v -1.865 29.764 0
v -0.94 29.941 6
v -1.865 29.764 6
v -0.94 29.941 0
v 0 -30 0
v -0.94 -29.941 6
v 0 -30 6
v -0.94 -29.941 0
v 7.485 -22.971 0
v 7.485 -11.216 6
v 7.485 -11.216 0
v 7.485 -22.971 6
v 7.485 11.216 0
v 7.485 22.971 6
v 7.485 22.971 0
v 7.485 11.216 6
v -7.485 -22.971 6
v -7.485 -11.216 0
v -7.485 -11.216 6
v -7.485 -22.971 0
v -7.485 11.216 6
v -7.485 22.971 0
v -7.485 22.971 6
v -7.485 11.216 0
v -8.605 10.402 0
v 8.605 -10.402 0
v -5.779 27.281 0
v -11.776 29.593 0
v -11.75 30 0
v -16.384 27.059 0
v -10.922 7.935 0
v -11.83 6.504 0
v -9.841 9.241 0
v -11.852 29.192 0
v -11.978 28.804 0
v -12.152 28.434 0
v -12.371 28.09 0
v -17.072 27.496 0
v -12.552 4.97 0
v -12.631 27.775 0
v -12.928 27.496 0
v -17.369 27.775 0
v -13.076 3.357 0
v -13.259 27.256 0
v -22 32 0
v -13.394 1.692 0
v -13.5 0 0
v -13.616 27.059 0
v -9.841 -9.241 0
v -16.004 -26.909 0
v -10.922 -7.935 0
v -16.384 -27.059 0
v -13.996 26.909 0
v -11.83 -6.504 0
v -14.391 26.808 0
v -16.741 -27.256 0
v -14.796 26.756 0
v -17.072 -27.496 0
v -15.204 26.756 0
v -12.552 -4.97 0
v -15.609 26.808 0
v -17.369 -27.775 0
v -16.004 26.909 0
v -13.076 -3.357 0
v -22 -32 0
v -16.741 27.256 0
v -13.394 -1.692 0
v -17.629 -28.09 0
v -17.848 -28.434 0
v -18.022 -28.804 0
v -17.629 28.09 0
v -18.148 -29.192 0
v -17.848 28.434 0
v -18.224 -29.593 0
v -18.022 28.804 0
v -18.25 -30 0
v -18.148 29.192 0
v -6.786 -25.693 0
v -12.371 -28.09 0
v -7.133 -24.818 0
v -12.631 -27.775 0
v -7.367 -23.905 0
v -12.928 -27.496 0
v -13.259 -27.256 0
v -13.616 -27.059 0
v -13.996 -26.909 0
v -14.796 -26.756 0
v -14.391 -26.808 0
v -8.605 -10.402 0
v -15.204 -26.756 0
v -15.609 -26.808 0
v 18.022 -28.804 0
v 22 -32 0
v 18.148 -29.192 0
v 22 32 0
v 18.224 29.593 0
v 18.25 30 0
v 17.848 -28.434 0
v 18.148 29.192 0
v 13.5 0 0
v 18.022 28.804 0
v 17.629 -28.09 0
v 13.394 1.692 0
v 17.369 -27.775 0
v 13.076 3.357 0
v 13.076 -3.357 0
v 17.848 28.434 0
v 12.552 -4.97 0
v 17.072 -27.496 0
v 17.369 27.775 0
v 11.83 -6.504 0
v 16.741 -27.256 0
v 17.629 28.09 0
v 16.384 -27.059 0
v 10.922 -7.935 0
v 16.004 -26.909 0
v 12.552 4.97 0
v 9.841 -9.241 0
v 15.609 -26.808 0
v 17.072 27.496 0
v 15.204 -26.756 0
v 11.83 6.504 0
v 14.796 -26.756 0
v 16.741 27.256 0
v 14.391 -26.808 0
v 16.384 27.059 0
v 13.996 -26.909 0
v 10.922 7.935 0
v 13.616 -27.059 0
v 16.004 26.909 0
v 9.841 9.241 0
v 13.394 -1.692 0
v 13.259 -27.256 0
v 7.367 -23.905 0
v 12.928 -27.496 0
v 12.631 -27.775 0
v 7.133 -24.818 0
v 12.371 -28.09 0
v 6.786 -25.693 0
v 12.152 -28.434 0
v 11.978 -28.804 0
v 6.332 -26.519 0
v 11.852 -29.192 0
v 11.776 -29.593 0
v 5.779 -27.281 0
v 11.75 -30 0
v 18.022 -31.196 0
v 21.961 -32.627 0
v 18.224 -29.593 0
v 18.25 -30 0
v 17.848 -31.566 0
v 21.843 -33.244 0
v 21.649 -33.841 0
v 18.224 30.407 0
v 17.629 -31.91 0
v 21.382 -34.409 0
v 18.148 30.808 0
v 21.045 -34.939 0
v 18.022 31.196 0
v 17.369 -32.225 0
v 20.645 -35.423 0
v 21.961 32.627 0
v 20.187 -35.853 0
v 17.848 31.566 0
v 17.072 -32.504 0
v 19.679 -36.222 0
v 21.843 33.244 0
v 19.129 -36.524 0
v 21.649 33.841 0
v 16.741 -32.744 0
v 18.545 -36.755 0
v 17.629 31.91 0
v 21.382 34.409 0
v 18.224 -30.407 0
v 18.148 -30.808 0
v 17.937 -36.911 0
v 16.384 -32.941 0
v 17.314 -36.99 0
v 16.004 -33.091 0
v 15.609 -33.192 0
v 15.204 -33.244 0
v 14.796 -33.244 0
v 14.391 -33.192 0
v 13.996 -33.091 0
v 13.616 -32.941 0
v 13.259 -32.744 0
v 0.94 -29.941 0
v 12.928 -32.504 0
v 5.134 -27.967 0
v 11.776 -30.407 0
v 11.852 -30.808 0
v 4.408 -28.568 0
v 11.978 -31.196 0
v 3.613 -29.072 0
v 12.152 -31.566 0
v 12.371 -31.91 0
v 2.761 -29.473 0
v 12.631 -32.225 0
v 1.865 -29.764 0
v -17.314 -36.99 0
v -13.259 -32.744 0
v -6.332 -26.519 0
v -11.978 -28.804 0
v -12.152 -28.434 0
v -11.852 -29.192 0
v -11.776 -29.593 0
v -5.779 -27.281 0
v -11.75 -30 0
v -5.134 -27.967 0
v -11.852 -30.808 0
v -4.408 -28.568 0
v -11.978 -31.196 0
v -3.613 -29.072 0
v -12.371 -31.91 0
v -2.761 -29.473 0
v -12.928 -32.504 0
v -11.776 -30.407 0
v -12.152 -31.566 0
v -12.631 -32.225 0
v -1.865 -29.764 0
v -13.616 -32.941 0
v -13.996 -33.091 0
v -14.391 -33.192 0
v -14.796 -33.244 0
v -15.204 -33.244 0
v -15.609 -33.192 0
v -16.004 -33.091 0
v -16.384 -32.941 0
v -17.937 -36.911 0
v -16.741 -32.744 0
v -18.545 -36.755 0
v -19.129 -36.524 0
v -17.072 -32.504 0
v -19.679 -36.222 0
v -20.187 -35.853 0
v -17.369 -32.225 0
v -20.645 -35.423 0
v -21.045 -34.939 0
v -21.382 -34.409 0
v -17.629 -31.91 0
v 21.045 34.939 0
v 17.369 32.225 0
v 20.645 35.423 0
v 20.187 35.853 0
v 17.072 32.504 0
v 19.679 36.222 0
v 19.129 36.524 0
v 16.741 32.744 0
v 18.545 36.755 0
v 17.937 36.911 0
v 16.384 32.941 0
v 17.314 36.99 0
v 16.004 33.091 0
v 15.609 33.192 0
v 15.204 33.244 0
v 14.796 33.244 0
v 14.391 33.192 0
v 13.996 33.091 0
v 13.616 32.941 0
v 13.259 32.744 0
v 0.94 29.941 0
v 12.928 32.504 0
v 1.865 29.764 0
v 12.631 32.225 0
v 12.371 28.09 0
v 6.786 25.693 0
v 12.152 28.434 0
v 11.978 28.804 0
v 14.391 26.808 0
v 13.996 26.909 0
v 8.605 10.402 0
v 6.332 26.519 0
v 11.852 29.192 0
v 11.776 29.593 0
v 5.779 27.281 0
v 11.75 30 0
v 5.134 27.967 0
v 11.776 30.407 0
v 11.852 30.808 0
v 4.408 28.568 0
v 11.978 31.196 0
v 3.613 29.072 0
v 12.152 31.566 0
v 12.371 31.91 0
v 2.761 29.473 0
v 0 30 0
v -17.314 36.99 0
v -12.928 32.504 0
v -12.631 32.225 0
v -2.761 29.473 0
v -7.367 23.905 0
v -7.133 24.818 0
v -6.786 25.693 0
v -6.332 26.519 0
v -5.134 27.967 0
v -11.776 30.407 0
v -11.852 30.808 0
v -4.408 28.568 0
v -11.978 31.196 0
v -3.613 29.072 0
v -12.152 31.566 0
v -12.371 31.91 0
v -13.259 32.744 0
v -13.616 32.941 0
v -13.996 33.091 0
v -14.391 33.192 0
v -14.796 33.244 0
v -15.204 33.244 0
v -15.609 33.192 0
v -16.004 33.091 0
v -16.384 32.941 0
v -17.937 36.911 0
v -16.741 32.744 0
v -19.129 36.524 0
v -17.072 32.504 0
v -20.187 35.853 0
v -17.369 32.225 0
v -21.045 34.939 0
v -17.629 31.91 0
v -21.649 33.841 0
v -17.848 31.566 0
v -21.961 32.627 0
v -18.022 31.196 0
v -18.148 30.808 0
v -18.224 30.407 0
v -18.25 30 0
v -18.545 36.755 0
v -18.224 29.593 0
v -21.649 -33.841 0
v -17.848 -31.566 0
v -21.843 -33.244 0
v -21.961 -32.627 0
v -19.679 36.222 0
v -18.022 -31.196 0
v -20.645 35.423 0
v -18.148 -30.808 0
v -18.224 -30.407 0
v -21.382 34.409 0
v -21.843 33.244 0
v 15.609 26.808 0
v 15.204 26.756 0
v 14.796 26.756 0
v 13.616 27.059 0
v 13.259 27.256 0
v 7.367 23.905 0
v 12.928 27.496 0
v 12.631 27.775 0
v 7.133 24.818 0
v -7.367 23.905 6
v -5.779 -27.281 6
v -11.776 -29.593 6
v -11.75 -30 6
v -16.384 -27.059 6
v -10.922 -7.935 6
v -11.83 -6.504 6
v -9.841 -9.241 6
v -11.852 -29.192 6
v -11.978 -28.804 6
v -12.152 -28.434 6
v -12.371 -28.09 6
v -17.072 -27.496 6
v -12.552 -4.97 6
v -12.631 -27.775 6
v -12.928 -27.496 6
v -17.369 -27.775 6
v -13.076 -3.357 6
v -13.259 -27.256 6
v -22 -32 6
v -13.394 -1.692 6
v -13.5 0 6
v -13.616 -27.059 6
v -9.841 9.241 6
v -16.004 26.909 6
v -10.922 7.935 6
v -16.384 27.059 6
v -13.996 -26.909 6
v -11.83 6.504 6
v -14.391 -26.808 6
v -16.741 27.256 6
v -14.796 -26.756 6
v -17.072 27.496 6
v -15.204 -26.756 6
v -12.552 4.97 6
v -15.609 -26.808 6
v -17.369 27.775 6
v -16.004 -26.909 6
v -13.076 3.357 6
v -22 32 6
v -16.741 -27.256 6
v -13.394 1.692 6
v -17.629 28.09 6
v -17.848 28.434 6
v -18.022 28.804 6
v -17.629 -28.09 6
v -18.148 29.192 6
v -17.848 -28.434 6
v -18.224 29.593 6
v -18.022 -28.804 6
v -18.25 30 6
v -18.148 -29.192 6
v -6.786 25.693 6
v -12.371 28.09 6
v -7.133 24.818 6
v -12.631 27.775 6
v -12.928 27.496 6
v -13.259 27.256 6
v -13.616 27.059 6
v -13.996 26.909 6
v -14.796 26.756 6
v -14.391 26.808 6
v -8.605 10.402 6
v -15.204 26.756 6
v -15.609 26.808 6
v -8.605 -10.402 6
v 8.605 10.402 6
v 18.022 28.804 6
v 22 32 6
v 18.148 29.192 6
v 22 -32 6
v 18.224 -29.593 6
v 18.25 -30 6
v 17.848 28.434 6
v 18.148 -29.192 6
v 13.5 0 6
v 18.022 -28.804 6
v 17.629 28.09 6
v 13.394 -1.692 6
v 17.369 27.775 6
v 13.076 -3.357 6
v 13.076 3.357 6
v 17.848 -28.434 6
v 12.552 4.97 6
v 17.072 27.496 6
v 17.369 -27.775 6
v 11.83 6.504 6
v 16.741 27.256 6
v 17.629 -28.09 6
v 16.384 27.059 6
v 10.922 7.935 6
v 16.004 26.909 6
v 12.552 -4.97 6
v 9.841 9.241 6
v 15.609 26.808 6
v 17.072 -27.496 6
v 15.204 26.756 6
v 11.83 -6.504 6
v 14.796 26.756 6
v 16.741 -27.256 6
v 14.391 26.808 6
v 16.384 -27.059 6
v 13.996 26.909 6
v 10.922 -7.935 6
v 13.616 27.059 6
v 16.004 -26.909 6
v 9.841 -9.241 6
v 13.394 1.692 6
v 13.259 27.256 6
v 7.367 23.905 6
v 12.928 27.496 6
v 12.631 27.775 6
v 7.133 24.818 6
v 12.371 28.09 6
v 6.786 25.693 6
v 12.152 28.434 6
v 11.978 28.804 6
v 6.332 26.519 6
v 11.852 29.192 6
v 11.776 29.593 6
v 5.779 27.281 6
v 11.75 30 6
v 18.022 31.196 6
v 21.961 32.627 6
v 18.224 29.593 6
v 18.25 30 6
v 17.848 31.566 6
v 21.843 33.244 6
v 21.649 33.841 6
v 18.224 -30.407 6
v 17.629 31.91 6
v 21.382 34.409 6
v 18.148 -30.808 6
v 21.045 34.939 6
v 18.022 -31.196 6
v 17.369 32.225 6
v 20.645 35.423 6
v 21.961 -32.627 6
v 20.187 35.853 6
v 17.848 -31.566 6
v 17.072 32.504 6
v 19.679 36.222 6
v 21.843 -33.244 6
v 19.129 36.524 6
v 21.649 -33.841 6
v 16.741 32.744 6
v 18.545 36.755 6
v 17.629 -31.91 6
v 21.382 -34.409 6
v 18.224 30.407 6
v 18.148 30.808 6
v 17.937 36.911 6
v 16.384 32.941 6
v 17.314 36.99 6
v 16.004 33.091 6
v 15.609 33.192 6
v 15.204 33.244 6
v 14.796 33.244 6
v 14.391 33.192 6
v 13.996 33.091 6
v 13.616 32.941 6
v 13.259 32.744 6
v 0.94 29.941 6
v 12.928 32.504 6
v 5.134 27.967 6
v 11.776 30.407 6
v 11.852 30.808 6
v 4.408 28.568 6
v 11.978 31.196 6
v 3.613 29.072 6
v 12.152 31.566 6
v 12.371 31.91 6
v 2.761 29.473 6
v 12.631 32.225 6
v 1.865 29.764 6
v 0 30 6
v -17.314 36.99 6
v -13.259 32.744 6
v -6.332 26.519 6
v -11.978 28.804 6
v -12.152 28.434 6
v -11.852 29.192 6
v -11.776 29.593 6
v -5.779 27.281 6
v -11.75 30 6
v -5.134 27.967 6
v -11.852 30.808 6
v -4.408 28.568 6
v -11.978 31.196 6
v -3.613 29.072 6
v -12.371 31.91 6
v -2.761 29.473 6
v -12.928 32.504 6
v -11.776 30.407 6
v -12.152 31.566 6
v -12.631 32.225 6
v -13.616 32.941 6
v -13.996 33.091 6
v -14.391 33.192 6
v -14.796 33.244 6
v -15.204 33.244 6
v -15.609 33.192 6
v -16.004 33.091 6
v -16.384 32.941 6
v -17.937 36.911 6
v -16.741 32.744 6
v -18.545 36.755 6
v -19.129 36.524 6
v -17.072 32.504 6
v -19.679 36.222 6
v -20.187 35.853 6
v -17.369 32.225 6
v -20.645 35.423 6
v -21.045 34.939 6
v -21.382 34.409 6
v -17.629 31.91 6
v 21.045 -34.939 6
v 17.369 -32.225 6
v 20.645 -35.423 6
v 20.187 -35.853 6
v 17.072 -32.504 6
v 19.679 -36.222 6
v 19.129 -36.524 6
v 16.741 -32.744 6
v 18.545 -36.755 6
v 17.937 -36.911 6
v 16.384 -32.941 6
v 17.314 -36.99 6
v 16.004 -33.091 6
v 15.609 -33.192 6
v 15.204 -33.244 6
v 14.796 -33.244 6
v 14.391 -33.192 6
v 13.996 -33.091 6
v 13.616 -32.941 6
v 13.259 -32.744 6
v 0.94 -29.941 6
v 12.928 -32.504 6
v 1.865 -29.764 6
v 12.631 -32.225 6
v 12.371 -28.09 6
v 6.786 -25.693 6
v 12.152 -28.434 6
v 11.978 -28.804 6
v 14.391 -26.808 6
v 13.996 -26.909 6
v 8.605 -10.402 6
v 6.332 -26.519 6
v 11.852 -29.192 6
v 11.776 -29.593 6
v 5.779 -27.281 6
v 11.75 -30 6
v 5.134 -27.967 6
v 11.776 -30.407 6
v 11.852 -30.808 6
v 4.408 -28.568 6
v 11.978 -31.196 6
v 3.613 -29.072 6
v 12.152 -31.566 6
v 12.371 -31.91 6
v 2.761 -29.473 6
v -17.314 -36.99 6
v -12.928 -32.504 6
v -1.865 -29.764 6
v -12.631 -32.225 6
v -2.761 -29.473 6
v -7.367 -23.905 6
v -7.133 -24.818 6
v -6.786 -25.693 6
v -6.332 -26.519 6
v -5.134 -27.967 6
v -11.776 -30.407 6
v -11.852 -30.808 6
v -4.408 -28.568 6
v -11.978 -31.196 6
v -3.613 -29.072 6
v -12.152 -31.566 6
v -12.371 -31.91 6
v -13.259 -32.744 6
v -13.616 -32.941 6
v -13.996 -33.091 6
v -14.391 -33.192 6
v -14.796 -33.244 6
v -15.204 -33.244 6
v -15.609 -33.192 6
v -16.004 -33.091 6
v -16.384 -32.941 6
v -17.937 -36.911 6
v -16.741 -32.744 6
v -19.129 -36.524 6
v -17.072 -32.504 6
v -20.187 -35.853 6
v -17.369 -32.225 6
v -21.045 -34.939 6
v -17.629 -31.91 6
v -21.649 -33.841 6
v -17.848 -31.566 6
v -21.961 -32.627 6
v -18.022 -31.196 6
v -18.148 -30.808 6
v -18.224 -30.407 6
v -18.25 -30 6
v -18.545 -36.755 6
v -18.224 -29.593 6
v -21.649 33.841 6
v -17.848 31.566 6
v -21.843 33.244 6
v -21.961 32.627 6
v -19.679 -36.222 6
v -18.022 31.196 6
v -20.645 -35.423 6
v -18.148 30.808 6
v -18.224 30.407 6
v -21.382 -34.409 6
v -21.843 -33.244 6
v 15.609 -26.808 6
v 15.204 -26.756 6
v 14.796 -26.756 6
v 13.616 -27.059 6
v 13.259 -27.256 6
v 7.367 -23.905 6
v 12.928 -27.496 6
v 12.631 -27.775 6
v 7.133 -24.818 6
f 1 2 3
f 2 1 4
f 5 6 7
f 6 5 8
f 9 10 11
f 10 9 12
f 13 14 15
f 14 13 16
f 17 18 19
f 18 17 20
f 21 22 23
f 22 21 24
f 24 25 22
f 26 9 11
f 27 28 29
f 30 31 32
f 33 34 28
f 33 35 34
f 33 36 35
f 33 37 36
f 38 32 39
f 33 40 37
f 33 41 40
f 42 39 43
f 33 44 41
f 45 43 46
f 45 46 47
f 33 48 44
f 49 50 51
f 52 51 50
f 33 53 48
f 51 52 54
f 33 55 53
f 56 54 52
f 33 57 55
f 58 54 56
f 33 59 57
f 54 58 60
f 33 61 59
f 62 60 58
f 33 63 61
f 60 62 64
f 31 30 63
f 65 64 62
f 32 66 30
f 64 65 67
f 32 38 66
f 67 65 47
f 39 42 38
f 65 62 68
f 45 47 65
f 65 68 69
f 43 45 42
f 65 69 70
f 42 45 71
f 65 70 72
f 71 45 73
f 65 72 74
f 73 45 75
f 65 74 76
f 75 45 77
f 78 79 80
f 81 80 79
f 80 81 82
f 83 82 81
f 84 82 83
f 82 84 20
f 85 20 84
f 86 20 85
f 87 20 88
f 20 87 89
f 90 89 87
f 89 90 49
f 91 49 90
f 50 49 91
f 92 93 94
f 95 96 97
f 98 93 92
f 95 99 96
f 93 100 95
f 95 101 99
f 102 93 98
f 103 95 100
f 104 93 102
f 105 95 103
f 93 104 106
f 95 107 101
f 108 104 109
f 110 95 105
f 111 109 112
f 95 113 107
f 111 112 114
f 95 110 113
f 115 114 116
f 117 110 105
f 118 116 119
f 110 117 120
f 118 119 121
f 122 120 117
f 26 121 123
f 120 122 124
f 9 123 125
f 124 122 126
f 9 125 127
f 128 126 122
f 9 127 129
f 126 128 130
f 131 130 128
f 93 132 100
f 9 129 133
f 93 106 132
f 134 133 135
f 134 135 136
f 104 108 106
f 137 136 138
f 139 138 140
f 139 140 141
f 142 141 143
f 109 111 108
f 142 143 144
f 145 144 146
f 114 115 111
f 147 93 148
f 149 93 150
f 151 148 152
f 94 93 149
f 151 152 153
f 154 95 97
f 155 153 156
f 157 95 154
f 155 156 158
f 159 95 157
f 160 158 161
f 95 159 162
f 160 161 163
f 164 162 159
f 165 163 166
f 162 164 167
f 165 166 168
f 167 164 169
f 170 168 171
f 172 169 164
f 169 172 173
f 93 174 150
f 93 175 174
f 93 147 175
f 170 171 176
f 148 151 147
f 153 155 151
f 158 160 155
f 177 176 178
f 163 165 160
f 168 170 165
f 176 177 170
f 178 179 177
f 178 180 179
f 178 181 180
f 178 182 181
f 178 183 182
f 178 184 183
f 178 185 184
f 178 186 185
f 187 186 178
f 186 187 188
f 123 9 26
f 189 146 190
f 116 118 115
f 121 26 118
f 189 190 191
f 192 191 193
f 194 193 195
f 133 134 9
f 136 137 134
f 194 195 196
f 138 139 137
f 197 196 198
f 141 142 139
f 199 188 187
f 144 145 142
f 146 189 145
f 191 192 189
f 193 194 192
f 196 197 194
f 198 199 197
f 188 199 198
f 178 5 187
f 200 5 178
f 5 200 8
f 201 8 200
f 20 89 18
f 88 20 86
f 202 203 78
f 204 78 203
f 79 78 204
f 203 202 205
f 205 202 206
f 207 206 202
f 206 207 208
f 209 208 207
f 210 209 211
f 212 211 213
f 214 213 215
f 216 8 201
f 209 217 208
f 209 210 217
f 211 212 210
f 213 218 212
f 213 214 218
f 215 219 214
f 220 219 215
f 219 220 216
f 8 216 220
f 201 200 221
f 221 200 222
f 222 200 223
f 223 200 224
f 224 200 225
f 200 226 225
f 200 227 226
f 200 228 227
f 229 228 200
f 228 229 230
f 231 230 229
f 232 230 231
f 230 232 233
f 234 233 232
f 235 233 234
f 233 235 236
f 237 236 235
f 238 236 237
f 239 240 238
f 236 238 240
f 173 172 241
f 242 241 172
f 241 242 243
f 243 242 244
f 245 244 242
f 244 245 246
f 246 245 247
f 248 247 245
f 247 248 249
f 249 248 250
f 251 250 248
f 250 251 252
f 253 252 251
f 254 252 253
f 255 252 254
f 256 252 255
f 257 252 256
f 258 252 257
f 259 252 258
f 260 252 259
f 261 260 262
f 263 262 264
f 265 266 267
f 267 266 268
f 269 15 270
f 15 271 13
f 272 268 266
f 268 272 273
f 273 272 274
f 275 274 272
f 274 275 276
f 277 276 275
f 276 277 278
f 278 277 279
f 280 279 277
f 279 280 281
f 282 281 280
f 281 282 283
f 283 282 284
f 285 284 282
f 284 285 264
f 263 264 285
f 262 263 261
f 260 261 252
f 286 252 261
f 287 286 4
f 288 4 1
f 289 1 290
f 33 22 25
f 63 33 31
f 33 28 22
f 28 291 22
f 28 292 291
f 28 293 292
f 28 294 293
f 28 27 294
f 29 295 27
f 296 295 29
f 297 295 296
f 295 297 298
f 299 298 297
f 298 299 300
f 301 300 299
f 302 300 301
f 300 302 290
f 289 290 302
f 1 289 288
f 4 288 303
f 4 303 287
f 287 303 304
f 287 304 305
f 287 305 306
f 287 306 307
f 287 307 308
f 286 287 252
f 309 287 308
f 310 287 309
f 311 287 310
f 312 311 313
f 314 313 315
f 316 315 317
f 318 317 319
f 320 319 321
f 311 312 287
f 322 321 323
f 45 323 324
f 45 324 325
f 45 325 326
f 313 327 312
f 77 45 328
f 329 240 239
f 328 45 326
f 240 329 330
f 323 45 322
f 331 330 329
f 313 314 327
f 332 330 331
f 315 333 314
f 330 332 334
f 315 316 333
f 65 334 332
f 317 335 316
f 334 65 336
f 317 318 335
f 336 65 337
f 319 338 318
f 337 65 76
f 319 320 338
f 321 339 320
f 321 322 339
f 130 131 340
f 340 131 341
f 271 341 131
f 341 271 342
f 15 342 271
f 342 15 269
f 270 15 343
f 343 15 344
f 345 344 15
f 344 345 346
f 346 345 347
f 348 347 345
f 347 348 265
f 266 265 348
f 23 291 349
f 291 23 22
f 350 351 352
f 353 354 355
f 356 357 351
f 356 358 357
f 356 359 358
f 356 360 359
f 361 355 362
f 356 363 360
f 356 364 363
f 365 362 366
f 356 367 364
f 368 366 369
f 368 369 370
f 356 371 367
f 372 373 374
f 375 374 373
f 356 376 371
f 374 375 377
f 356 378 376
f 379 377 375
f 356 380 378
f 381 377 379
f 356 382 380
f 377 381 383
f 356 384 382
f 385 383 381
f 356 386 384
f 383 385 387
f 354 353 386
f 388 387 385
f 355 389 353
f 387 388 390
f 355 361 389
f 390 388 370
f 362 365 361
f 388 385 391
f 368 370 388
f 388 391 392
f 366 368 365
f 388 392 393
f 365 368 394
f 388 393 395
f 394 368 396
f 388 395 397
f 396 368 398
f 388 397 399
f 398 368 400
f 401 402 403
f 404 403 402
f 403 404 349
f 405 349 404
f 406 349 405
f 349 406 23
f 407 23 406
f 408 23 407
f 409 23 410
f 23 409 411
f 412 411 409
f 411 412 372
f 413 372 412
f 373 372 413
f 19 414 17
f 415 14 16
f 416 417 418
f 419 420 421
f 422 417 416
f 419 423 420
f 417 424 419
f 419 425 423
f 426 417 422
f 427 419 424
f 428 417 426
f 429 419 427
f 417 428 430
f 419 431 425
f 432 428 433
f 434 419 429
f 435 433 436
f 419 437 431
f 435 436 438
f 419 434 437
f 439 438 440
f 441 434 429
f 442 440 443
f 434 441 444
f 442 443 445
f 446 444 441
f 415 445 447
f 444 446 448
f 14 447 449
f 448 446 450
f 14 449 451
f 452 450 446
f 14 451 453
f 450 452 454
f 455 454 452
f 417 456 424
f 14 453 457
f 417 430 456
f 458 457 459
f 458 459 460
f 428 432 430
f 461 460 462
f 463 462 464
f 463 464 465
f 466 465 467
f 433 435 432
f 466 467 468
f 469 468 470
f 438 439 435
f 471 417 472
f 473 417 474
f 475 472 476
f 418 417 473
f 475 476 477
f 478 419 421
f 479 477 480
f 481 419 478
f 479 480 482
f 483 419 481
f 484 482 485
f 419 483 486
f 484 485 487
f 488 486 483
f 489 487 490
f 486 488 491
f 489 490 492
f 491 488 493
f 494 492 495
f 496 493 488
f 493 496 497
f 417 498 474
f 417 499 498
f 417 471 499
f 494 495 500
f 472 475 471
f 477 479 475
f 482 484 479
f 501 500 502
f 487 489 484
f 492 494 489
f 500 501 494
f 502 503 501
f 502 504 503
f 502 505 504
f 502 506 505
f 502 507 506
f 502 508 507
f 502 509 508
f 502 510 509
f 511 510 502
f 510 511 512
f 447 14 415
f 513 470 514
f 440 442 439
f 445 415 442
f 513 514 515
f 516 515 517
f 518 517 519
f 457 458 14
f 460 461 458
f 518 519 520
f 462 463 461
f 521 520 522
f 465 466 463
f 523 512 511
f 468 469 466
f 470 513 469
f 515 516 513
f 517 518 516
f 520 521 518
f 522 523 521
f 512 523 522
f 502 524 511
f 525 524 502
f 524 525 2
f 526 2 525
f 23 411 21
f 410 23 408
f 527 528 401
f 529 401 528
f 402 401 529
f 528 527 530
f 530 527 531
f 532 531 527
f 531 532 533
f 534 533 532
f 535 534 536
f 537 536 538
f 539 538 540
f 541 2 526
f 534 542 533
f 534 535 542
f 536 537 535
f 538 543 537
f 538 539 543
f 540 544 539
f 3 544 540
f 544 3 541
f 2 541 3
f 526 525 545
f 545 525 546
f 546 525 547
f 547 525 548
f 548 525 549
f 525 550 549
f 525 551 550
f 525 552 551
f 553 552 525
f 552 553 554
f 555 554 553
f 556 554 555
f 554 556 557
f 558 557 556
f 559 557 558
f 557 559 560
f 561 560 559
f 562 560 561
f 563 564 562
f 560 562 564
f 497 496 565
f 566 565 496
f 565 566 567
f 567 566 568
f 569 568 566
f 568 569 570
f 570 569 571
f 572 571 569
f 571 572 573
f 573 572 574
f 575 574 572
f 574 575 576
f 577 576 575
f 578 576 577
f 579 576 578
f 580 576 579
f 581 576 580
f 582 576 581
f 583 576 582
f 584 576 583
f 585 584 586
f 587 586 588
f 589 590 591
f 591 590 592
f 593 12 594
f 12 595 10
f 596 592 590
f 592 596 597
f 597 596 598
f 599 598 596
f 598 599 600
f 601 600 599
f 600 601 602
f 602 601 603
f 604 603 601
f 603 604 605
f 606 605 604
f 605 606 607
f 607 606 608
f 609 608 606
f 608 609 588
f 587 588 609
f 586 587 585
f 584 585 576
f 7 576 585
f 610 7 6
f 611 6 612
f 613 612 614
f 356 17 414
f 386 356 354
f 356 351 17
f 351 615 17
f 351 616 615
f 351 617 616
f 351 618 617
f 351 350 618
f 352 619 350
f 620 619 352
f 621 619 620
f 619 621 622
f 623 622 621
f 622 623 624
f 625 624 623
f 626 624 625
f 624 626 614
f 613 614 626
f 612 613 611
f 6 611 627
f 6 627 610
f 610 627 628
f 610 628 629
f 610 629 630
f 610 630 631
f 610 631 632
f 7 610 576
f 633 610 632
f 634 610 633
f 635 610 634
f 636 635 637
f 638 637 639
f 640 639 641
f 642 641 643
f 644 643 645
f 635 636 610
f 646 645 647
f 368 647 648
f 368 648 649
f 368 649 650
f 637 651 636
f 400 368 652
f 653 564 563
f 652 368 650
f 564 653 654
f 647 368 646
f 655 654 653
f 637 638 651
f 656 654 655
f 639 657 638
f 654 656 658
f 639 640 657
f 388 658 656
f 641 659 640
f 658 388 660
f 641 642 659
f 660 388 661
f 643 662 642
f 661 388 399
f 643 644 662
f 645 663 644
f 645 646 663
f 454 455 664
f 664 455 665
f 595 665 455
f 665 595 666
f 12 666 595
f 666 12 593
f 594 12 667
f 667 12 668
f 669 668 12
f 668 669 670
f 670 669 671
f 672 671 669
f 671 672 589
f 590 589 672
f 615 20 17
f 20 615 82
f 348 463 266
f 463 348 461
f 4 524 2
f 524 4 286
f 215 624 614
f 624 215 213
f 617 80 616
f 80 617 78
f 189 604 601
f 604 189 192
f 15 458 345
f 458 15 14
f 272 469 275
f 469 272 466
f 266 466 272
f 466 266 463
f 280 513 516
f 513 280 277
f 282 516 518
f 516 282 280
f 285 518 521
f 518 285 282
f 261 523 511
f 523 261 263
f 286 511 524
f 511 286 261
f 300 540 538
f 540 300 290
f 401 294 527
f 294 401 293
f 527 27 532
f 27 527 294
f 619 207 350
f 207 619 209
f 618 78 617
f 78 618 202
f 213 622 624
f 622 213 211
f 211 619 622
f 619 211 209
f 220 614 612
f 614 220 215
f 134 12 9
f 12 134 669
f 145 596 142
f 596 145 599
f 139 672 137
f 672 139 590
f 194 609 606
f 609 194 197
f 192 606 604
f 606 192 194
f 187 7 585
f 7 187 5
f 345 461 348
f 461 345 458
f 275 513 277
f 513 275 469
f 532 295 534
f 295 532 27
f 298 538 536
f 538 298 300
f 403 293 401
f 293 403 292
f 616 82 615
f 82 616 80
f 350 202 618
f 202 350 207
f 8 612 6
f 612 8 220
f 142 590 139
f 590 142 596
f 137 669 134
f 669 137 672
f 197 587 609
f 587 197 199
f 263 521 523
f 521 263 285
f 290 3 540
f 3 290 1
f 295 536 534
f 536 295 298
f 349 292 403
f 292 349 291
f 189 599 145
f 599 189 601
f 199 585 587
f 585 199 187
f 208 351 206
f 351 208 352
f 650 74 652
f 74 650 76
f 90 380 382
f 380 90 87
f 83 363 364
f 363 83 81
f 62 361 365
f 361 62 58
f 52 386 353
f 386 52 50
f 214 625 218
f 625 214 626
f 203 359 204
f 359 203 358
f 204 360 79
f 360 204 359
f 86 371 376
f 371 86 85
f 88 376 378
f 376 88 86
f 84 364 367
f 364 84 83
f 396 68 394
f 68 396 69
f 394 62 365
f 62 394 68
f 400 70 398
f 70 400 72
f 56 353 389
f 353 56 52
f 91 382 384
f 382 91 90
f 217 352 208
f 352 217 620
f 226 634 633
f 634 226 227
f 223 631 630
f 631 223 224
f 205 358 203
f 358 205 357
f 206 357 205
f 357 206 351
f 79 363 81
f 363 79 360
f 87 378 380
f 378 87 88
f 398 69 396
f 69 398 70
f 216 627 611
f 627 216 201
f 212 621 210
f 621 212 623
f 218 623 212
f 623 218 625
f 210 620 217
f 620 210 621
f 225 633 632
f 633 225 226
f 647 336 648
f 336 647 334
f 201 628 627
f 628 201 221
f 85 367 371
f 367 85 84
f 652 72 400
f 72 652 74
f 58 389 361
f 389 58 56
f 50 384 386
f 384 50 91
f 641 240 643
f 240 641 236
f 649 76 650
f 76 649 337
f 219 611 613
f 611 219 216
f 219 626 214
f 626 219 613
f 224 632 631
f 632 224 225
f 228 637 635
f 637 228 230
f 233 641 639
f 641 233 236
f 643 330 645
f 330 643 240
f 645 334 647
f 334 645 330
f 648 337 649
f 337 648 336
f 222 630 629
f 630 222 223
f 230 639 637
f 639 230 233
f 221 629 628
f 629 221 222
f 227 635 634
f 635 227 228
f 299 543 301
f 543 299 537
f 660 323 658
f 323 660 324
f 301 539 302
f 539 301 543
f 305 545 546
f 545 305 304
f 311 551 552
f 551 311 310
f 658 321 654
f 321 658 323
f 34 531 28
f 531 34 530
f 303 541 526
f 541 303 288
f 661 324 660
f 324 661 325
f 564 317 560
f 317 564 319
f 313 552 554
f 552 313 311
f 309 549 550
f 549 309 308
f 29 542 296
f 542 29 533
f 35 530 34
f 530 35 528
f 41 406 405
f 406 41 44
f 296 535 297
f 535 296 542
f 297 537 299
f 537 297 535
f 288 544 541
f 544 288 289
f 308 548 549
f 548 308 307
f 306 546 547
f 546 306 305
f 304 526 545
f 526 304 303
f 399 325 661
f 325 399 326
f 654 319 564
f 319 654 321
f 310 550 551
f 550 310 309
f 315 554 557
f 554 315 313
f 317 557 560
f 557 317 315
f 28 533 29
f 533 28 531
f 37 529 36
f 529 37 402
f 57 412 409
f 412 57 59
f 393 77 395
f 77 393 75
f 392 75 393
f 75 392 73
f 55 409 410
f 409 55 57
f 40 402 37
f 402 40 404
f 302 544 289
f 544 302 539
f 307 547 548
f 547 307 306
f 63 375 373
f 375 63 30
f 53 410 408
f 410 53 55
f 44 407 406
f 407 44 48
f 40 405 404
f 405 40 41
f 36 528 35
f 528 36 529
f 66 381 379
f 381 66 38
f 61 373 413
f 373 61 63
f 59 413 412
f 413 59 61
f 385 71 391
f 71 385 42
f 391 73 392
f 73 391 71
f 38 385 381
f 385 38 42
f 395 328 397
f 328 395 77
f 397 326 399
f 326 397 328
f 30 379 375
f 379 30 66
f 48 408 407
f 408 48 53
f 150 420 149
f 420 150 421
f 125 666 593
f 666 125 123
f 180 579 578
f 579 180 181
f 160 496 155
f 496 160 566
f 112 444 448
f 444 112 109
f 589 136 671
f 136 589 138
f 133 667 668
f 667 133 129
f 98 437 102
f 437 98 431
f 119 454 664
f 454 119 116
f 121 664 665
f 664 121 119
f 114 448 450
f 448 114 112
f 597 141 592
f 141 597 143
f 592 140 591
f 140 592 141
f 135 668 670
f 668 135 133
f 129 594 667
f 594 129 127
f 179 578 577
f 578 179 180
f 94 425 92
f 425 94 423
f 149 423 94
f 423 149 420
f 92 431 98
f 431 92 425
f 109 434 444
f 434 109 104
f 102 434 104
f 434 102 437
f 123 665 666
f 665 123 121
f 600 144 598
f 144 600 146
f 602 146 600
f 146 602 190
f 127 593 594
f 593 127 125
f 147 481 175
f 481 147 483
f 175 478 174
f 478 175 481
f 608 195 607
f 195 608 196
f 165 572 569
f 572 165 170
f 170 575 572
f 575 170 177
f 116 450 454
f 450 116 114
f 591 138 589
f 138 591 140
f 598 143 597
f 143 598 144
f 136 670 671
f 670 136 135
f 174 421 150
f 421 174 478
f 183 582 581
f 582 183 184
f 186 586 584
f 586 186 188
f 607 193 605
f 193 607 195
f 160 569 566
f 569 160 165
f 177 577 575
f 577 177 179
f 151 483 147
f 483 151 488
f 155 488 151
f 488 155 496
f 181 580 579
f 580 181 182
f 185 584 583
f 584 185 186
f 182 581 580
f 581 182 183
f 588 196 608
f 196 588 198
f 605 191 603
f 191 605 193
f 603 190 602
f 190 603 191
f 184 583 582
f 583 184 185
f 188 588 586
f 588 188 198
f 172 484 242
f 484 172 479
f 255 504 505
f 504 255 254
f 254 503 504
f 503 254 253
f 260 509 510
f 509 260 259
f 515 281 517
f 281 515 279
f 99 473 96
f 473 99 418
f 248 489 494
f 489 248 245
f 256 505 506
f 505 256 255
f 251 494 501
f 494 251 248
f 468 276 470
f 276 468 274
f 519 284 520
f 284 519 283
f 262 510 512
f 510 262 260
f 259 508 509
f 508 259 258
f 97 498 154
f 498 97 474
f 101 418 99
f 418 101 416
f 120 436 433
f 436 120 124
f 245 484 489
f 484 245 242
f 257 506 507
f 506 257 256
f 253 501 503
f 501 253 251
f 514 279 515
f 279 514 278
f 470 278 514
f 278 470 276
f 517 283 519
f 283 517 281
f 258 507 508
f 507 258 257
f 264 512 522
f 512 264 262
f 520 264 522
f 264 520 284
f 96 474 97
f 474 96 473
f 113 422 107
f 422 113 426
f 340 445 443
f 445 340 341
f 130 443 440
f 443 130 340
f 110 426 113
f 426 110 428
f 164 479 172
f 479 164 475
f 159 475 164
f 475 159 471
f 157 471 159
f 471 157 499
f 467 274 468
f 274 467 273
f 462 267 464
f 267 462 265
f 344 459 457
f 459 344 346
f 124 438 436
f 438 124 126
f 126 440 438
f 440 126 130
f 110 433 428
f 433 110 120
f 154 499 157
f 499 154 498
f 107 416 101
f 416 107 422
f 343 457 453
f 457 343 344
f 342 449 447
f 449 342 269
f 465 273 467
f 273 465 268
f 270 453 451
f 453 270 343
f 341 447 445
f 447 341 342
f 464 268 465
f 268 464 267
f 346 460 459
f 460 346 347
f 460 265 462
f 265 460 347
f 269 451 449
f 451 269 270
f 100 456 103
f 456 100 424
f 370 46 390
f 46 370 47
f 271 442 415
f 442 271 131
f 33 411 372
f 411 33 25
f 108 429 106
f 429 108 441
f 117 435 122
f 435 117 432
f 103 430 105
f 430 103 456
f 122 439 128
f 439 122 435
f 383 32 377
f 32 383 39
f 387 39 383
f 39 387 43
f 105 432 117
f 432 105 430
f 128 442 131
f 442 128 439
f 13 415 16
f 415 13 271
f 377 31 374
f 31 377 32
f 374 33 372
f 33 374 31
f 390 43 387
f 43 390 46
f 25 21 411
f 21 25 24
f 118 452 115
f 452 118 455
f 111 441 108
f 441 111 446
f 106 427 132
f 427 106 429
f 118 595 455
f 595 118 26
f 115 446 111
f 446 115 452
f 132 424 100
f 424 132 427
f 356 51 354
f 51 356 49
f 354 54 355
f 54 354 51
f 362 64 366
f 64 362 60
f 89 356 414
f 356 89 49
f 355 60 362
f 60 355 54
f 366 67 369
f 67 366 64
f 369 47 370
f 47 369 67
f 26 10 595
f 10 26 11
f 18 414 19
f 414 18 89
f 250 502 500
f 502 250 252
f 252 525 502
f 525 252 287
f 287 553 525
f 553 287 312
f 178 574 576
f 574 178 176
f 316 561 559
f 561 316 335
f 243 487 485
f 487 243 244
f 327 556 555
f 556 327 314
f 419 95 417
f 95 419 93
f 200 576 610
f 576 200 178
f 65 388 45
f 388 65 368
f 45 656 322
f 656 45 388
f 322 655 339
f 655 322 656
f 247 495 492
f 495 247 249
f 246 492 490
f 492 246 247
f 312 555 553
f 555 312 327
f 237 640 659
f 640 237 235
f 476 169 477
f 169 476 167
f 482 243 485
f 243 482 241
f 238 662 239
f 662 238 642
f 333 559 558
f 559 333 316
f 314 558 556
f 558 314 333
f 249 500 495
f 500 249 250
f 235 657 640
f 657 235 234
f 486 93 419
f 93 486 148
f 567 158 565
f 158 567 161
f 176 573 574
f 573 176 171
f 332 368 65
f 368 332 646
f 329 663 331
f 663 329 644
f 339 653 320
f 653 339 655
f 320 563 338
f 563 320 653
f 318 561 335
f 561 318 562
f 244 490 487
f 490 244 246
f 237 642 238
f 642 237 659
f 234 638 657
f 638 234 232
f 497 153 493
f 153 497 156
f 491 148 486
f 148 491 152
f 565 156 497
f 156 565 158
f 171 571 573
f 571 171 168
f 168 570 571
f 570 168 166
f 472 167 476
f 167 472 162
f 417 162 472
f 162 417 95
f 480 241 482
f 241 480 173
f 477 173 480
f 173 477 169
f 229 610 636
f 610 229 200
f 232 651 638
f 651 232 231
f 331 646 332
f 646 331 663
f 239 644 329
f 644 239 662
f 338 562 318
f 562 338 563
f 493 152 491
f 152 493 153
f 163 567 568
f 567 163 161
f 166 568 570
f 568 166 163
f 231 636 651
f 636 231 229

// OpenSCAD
$fn = 50;


difference() {
	union() {
		hull() {
			translate(v = [-17.0000000000, 32.0000000000, 0]) {
				cylinder(h = 6, r = 5);
			}
			translate(v = [17.0000000000, 32.0000000000, 0]) {
				cylinder(h = 6, r = 5);
			}
			translate(v = [-17.0000000000, -32.0000000000, 0]) {
				cylinder(h = 6, r = 5);
			}
			translate(v = [17.0000000000, -32.0000000000, 0]) {
				cylinder(h = 6, r = 5);
			}
		}
	}
	union() {
		translate(v = [0, 0, 0]) {
			rotate(a = [0, 0, 90]) {
				difference() {
					union() {
						hull() {
							translate(v = [22.5000000000, 0, 0]) {
								cylinder(h = 6, r = 7.5000000000, r1 = 7.5000000000, r2 = 7.5000000000);
							}
							translate(v = [-22.5000000000, 0, 0]) {
								cylinder(h = 6, r = 7.5000000000, r1 = 7.5000000000, r2 = 7.5000000000);
							}
						}
					}
					union();
				}
			}
		}
		translate(v = [-15.0000000000, -30.0000000000, -100.0000000000]) {
			cylinder(h = 200, r = 3.2500000000);
		}
		translate(v = [-15.0000000000, 30.0000000000, -100.0000000000]) {
			cylinder(h = 200, r = 3.2500000000);
		}
		translate(v = [15.0000000000, -30.0000000000, -100.0000000000]) {
			cylinder(h = 200, r = 3.2500000000);
		}
		translate(v = [15.0000000000, 30.0000000000, -100.0000000000]) {
			cylinder(h = 200, r = 3.2500000000);
		}
		translate(v = [0, 0, -100.0000000000]) {
			cylinder(h = 200, r = 13.5000000000);
		}
	}
}
